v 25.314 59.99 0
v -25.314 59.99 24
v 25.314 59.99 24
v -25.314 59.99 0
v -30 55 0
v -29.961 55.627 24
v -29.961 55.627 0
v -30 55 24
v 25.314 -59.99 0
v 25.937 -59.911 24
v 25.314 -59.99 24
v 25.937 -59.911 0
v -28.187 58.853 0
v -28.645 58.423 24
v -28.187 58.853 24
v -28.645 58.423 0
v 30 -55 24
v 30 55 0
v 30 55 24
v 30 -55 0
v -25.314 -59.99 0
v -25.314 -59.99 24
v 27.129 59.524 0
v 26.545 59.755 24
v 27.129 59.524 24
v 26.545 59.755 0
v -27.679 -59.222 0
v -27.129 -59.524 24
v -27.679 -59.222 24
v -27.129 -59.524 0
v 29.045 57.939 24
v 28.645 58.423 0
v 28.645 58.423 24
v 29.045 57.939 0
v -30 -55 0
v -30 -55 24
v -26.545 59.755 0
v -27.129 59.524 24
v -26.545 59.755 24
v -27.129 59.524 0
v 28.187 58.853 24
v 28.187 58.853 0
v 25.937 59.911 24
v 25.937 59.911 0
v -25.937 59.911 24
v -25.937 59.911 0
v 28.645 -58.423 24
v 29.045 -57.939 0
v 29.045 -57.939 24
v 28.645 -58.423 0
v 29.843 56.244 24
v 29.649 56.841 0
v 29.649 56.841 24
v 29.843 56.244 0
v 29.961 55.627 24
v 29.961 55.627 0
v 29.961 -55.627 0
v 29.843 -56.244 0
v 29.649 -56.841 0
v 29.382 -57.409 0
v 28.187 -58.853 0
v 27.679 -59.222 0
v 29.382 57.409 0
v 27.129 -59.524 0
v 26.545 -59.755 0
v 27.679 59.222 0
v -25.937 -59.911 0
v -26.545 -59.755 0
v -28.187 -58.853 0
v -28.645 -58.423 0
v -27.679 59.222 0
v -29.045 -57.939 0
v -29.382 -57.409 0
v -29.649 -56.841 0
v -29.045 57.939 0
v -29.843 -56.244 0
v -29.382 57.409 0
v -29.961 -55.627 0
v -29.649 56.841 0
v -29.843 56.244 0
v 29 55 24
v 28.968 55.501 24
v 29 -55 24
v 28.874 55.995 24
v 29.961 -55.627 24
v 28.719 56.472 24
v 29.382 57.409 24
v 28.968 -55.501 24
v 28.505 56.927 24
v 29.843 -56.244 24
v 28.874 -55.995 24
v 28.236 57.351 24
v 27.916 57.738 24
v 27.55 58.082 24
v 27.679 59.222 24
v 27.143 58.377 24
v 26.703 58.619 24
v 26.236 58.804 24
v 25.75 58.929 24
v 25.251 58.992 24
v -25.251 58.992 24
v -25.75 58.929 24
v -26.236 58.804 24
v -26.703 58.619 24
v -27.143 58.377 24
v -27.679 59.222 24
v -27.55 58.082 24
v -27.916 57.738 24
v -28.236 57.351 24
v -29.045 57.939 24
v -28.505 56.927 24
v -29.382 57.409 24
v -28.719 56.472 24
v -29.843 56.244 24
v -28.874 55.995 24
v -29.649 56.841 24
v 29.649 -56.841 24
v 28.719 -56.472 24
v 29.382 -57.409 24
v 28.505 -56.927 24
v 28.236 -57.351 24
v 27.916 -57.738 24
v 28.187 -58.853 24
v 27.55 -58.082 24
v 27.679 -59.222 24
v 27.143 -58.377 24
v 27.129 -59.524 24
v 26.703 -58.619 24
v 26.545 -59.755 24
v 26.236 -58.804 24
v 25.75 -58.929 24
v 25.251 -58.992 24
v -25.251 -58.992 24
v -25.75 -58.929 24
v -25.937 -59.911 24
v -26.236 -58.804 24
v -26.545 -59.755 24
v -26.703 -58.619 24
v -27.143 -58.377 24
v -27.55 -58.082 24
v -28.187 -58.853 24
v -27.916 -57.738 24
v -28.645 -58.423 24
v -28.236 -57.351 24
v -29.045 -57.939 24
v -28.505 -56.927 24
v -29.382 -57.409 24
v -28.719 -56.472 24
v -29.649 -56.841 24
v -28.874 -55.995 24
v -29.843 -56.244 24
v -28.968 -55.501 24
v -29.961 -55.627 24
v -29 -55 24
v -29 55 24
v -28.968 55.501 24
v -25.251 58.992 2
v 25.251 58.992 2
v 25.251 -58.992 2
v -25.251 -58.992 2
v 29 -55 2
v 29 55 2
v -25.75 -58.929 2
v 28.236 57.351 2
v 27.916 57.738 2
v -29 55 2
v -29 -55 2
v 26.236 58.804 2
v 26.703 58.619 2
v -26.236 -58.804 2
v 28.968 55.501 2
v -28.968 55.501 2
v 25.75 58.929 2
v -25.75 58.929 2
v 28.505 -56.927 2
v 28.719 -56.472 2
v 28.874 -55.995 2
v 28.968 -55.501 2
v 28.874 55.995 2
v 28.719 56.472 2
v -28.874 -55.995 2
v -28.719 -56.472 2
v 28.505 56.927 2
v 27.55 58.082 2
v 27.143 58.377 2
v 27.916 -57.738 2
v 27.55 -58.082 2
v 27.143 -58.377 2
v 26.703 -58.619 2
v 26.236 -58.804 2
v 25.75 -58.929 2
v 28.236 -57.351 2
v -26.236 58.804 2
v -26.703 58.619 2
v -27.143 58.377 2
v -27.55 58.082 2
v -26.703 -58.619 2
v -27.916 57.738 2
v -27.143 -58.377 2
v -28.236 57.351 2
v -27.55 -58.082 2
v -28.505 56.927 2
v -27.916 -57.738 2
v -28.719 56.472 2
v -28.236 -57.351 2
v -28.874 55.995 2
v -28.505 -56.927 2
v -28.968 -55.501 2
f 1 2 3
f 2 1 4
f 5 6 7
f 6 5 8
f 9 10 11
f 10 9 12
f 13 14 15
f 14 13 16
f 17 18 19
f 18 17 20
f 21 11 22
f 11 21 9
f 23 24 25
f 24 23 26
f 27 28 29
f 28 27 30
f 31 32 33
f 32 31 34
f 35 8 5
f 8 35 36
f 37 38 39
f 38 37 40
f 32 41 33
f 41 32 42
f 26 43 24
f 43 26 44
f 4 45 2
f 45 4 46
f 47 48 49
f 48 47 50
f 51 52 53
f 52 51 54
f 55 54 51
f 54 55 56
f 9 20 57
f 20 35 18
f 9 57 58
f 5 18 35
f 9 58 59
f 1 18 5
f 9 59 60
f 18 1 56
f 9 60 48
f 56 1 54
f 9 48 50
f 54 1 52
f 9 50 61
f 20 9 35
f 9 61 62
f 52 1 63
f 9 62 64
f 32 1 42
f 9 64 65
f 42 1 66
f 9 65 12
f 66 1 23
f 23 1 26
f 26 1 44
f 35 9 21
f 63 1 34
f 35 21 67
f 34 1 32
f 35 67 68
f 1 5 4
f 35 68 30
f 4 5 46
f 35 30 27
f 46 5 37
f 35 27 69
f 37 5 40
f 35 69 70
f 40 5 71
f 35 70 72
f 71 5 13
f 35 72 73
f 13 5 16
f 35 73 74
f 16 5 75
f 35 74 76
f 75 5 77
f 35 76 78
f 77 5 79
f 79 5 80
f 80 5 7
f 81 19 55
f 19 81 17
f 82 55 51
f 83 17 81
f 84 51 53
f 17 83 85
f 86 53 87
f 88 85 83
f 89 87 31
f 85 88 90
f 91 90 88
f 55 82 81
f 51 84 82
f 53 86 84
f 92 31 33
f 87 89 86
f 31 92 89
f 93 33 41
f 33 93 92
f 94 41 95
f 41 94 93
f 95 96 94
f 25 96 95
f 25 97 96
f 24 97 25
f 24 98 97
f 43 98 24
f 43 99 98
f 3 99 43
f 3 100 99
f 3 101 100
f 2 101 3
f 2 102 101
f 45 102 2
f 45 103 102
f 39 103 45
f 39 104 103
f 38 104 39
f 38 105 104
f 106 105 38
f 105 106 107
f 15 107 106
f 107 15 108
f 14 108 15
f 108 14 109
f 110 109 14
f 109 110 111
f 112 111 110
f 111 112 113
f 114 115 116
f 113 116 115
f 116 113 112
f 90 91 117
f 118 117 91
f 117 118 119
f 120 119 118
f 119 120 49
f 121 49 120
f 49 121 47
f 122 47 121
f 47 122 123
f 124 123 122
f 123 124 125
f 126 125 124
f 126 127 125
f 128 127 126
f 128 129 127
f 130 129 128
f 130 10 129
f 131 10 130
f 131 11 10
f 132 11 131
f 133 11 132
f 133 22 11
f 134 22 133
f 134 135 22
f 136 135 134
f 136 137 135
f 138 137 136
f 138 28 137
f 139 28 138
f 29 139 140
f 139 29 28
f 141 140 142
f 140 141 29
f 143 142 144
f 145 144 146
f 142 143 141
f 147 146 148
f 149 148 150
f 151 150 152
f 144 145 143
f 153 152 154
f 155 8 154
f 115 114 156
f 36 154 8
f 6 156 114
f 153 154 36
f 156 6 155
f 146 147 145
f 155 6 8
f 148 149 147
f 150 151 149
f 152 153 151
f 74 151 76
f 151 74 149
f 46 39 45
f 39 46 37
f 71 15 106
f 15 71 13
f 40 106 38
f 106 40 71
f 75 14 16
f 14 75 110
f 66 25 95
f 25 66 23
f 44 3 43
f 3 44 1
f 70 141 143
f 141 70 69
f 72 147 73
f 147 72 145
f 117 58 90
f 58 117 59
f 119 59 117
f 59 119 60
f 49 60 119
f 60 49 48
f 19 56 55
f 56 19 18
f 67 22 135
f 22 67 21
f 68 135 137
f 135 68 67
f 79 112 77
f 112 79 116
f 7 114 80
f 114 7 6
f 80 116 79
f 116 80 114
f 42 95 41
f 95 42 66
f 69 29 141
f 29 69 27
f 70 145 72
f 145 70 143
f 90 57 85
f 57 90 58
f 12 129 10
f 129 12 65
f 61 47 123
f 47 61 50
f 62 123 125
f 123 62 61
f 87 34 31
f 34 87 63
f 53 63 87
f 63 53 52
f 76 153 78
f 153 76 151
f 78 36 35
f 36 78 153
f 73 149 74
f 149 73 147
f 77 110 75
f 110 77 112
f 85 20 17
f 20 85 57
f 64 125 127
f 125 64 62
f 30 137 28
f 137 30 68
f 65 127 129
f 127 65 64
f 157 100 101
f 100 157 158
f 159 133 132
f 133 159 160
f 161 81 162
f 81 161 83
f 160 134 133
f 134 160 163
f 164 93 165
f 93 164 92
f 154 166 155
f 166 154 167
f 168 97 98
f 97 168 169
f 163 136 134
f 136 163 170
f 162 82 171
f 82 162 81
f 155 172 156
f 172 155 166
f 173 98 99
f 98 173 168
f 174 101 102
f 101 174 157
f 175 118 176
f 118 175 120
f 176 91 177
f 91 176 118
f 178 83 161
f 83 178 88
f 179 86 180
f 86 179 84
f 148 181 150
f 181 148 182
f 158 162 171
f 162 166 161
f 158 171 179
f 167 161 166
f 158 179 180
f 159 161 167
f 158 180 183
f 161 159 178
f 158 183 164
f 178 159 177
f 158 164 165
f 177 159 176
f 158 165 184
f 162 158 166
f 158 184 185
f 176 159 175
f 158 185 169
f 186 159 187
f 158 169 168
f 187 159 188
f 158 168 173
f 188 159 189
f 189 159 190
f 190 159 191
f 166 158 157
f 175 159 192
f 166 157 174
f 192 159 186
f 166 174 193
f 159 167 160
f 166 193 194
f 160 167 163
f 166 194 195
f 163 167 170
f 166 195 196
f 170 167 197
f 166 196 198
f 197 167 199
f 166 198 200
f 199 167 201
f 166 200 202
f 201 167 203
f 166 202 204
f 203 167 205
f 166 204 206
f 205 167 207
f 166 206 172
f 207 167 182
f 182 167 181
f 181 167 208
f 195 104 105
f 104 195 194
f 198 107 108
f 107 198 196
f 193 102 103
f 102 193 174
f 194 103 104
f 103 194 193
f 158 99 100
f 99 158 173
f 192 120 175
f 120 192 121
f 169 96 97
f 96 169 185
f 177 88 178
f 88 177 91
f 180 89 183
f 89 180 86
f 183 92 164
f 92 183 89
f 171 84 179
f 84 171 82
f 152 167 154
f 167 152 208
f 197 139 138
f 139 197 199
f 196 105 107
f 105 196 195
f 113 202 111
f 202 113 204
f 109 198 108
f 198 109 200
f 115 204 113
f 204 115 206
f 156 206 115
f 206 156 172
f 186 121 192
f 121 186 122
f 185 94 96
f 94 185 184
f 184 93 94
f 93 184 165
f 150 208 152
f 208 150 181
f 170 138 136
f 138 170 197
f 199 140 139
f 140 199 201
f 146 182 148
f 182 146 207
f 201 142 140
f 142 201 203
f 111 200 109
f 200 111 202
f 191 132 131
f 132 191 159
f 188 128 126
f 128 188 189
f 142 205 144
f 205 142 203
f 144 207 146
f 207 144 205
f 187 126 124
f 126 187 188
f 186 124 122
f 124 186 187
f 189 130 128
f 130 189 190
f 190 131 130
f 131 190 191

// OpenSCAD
$fn = 50;


difference() {
	union() {
		hull() {
			translate(v = [-25.0000000000, 55.0000000000, 0]) {
				cylinder(h = 24, r = 5);
			}
			translate(v = [25.0000000000, 55.0000000000, 0]) {
				cylinder(h = 24, r = 5);
			}
			translate(v = [-25.0000000000, -55.0000000000, 0]) {
				cylinder(h = 24, r = 5);
			}
			translate(v = [25.0000000000, -55.0000000000, 0]) {
				cylinder(h = 24, r = 5);
			}
		}
	}
	union() {
		translate(v = [0, 0, 2]) {
			hull() {
				translate(v = [-25.0000000000, 55.0000000000, 0]) {
					cylinder(h = 22, r = 4);
				}
				translate(v = [25.0000000000, 55.0000000000, 0]) {
					cylinder(h = 22, r = 4);
				}
				translate(v = [-25.0000000000, -55.0000000000, 0]) {
					cylinder(h = 22, r = 4);
				}
				translate(v = [25.0000000000, -55.0000000000, 0]) {
					cylinder(h = 22, r = 4);
				}
			}
		}
	}
}
